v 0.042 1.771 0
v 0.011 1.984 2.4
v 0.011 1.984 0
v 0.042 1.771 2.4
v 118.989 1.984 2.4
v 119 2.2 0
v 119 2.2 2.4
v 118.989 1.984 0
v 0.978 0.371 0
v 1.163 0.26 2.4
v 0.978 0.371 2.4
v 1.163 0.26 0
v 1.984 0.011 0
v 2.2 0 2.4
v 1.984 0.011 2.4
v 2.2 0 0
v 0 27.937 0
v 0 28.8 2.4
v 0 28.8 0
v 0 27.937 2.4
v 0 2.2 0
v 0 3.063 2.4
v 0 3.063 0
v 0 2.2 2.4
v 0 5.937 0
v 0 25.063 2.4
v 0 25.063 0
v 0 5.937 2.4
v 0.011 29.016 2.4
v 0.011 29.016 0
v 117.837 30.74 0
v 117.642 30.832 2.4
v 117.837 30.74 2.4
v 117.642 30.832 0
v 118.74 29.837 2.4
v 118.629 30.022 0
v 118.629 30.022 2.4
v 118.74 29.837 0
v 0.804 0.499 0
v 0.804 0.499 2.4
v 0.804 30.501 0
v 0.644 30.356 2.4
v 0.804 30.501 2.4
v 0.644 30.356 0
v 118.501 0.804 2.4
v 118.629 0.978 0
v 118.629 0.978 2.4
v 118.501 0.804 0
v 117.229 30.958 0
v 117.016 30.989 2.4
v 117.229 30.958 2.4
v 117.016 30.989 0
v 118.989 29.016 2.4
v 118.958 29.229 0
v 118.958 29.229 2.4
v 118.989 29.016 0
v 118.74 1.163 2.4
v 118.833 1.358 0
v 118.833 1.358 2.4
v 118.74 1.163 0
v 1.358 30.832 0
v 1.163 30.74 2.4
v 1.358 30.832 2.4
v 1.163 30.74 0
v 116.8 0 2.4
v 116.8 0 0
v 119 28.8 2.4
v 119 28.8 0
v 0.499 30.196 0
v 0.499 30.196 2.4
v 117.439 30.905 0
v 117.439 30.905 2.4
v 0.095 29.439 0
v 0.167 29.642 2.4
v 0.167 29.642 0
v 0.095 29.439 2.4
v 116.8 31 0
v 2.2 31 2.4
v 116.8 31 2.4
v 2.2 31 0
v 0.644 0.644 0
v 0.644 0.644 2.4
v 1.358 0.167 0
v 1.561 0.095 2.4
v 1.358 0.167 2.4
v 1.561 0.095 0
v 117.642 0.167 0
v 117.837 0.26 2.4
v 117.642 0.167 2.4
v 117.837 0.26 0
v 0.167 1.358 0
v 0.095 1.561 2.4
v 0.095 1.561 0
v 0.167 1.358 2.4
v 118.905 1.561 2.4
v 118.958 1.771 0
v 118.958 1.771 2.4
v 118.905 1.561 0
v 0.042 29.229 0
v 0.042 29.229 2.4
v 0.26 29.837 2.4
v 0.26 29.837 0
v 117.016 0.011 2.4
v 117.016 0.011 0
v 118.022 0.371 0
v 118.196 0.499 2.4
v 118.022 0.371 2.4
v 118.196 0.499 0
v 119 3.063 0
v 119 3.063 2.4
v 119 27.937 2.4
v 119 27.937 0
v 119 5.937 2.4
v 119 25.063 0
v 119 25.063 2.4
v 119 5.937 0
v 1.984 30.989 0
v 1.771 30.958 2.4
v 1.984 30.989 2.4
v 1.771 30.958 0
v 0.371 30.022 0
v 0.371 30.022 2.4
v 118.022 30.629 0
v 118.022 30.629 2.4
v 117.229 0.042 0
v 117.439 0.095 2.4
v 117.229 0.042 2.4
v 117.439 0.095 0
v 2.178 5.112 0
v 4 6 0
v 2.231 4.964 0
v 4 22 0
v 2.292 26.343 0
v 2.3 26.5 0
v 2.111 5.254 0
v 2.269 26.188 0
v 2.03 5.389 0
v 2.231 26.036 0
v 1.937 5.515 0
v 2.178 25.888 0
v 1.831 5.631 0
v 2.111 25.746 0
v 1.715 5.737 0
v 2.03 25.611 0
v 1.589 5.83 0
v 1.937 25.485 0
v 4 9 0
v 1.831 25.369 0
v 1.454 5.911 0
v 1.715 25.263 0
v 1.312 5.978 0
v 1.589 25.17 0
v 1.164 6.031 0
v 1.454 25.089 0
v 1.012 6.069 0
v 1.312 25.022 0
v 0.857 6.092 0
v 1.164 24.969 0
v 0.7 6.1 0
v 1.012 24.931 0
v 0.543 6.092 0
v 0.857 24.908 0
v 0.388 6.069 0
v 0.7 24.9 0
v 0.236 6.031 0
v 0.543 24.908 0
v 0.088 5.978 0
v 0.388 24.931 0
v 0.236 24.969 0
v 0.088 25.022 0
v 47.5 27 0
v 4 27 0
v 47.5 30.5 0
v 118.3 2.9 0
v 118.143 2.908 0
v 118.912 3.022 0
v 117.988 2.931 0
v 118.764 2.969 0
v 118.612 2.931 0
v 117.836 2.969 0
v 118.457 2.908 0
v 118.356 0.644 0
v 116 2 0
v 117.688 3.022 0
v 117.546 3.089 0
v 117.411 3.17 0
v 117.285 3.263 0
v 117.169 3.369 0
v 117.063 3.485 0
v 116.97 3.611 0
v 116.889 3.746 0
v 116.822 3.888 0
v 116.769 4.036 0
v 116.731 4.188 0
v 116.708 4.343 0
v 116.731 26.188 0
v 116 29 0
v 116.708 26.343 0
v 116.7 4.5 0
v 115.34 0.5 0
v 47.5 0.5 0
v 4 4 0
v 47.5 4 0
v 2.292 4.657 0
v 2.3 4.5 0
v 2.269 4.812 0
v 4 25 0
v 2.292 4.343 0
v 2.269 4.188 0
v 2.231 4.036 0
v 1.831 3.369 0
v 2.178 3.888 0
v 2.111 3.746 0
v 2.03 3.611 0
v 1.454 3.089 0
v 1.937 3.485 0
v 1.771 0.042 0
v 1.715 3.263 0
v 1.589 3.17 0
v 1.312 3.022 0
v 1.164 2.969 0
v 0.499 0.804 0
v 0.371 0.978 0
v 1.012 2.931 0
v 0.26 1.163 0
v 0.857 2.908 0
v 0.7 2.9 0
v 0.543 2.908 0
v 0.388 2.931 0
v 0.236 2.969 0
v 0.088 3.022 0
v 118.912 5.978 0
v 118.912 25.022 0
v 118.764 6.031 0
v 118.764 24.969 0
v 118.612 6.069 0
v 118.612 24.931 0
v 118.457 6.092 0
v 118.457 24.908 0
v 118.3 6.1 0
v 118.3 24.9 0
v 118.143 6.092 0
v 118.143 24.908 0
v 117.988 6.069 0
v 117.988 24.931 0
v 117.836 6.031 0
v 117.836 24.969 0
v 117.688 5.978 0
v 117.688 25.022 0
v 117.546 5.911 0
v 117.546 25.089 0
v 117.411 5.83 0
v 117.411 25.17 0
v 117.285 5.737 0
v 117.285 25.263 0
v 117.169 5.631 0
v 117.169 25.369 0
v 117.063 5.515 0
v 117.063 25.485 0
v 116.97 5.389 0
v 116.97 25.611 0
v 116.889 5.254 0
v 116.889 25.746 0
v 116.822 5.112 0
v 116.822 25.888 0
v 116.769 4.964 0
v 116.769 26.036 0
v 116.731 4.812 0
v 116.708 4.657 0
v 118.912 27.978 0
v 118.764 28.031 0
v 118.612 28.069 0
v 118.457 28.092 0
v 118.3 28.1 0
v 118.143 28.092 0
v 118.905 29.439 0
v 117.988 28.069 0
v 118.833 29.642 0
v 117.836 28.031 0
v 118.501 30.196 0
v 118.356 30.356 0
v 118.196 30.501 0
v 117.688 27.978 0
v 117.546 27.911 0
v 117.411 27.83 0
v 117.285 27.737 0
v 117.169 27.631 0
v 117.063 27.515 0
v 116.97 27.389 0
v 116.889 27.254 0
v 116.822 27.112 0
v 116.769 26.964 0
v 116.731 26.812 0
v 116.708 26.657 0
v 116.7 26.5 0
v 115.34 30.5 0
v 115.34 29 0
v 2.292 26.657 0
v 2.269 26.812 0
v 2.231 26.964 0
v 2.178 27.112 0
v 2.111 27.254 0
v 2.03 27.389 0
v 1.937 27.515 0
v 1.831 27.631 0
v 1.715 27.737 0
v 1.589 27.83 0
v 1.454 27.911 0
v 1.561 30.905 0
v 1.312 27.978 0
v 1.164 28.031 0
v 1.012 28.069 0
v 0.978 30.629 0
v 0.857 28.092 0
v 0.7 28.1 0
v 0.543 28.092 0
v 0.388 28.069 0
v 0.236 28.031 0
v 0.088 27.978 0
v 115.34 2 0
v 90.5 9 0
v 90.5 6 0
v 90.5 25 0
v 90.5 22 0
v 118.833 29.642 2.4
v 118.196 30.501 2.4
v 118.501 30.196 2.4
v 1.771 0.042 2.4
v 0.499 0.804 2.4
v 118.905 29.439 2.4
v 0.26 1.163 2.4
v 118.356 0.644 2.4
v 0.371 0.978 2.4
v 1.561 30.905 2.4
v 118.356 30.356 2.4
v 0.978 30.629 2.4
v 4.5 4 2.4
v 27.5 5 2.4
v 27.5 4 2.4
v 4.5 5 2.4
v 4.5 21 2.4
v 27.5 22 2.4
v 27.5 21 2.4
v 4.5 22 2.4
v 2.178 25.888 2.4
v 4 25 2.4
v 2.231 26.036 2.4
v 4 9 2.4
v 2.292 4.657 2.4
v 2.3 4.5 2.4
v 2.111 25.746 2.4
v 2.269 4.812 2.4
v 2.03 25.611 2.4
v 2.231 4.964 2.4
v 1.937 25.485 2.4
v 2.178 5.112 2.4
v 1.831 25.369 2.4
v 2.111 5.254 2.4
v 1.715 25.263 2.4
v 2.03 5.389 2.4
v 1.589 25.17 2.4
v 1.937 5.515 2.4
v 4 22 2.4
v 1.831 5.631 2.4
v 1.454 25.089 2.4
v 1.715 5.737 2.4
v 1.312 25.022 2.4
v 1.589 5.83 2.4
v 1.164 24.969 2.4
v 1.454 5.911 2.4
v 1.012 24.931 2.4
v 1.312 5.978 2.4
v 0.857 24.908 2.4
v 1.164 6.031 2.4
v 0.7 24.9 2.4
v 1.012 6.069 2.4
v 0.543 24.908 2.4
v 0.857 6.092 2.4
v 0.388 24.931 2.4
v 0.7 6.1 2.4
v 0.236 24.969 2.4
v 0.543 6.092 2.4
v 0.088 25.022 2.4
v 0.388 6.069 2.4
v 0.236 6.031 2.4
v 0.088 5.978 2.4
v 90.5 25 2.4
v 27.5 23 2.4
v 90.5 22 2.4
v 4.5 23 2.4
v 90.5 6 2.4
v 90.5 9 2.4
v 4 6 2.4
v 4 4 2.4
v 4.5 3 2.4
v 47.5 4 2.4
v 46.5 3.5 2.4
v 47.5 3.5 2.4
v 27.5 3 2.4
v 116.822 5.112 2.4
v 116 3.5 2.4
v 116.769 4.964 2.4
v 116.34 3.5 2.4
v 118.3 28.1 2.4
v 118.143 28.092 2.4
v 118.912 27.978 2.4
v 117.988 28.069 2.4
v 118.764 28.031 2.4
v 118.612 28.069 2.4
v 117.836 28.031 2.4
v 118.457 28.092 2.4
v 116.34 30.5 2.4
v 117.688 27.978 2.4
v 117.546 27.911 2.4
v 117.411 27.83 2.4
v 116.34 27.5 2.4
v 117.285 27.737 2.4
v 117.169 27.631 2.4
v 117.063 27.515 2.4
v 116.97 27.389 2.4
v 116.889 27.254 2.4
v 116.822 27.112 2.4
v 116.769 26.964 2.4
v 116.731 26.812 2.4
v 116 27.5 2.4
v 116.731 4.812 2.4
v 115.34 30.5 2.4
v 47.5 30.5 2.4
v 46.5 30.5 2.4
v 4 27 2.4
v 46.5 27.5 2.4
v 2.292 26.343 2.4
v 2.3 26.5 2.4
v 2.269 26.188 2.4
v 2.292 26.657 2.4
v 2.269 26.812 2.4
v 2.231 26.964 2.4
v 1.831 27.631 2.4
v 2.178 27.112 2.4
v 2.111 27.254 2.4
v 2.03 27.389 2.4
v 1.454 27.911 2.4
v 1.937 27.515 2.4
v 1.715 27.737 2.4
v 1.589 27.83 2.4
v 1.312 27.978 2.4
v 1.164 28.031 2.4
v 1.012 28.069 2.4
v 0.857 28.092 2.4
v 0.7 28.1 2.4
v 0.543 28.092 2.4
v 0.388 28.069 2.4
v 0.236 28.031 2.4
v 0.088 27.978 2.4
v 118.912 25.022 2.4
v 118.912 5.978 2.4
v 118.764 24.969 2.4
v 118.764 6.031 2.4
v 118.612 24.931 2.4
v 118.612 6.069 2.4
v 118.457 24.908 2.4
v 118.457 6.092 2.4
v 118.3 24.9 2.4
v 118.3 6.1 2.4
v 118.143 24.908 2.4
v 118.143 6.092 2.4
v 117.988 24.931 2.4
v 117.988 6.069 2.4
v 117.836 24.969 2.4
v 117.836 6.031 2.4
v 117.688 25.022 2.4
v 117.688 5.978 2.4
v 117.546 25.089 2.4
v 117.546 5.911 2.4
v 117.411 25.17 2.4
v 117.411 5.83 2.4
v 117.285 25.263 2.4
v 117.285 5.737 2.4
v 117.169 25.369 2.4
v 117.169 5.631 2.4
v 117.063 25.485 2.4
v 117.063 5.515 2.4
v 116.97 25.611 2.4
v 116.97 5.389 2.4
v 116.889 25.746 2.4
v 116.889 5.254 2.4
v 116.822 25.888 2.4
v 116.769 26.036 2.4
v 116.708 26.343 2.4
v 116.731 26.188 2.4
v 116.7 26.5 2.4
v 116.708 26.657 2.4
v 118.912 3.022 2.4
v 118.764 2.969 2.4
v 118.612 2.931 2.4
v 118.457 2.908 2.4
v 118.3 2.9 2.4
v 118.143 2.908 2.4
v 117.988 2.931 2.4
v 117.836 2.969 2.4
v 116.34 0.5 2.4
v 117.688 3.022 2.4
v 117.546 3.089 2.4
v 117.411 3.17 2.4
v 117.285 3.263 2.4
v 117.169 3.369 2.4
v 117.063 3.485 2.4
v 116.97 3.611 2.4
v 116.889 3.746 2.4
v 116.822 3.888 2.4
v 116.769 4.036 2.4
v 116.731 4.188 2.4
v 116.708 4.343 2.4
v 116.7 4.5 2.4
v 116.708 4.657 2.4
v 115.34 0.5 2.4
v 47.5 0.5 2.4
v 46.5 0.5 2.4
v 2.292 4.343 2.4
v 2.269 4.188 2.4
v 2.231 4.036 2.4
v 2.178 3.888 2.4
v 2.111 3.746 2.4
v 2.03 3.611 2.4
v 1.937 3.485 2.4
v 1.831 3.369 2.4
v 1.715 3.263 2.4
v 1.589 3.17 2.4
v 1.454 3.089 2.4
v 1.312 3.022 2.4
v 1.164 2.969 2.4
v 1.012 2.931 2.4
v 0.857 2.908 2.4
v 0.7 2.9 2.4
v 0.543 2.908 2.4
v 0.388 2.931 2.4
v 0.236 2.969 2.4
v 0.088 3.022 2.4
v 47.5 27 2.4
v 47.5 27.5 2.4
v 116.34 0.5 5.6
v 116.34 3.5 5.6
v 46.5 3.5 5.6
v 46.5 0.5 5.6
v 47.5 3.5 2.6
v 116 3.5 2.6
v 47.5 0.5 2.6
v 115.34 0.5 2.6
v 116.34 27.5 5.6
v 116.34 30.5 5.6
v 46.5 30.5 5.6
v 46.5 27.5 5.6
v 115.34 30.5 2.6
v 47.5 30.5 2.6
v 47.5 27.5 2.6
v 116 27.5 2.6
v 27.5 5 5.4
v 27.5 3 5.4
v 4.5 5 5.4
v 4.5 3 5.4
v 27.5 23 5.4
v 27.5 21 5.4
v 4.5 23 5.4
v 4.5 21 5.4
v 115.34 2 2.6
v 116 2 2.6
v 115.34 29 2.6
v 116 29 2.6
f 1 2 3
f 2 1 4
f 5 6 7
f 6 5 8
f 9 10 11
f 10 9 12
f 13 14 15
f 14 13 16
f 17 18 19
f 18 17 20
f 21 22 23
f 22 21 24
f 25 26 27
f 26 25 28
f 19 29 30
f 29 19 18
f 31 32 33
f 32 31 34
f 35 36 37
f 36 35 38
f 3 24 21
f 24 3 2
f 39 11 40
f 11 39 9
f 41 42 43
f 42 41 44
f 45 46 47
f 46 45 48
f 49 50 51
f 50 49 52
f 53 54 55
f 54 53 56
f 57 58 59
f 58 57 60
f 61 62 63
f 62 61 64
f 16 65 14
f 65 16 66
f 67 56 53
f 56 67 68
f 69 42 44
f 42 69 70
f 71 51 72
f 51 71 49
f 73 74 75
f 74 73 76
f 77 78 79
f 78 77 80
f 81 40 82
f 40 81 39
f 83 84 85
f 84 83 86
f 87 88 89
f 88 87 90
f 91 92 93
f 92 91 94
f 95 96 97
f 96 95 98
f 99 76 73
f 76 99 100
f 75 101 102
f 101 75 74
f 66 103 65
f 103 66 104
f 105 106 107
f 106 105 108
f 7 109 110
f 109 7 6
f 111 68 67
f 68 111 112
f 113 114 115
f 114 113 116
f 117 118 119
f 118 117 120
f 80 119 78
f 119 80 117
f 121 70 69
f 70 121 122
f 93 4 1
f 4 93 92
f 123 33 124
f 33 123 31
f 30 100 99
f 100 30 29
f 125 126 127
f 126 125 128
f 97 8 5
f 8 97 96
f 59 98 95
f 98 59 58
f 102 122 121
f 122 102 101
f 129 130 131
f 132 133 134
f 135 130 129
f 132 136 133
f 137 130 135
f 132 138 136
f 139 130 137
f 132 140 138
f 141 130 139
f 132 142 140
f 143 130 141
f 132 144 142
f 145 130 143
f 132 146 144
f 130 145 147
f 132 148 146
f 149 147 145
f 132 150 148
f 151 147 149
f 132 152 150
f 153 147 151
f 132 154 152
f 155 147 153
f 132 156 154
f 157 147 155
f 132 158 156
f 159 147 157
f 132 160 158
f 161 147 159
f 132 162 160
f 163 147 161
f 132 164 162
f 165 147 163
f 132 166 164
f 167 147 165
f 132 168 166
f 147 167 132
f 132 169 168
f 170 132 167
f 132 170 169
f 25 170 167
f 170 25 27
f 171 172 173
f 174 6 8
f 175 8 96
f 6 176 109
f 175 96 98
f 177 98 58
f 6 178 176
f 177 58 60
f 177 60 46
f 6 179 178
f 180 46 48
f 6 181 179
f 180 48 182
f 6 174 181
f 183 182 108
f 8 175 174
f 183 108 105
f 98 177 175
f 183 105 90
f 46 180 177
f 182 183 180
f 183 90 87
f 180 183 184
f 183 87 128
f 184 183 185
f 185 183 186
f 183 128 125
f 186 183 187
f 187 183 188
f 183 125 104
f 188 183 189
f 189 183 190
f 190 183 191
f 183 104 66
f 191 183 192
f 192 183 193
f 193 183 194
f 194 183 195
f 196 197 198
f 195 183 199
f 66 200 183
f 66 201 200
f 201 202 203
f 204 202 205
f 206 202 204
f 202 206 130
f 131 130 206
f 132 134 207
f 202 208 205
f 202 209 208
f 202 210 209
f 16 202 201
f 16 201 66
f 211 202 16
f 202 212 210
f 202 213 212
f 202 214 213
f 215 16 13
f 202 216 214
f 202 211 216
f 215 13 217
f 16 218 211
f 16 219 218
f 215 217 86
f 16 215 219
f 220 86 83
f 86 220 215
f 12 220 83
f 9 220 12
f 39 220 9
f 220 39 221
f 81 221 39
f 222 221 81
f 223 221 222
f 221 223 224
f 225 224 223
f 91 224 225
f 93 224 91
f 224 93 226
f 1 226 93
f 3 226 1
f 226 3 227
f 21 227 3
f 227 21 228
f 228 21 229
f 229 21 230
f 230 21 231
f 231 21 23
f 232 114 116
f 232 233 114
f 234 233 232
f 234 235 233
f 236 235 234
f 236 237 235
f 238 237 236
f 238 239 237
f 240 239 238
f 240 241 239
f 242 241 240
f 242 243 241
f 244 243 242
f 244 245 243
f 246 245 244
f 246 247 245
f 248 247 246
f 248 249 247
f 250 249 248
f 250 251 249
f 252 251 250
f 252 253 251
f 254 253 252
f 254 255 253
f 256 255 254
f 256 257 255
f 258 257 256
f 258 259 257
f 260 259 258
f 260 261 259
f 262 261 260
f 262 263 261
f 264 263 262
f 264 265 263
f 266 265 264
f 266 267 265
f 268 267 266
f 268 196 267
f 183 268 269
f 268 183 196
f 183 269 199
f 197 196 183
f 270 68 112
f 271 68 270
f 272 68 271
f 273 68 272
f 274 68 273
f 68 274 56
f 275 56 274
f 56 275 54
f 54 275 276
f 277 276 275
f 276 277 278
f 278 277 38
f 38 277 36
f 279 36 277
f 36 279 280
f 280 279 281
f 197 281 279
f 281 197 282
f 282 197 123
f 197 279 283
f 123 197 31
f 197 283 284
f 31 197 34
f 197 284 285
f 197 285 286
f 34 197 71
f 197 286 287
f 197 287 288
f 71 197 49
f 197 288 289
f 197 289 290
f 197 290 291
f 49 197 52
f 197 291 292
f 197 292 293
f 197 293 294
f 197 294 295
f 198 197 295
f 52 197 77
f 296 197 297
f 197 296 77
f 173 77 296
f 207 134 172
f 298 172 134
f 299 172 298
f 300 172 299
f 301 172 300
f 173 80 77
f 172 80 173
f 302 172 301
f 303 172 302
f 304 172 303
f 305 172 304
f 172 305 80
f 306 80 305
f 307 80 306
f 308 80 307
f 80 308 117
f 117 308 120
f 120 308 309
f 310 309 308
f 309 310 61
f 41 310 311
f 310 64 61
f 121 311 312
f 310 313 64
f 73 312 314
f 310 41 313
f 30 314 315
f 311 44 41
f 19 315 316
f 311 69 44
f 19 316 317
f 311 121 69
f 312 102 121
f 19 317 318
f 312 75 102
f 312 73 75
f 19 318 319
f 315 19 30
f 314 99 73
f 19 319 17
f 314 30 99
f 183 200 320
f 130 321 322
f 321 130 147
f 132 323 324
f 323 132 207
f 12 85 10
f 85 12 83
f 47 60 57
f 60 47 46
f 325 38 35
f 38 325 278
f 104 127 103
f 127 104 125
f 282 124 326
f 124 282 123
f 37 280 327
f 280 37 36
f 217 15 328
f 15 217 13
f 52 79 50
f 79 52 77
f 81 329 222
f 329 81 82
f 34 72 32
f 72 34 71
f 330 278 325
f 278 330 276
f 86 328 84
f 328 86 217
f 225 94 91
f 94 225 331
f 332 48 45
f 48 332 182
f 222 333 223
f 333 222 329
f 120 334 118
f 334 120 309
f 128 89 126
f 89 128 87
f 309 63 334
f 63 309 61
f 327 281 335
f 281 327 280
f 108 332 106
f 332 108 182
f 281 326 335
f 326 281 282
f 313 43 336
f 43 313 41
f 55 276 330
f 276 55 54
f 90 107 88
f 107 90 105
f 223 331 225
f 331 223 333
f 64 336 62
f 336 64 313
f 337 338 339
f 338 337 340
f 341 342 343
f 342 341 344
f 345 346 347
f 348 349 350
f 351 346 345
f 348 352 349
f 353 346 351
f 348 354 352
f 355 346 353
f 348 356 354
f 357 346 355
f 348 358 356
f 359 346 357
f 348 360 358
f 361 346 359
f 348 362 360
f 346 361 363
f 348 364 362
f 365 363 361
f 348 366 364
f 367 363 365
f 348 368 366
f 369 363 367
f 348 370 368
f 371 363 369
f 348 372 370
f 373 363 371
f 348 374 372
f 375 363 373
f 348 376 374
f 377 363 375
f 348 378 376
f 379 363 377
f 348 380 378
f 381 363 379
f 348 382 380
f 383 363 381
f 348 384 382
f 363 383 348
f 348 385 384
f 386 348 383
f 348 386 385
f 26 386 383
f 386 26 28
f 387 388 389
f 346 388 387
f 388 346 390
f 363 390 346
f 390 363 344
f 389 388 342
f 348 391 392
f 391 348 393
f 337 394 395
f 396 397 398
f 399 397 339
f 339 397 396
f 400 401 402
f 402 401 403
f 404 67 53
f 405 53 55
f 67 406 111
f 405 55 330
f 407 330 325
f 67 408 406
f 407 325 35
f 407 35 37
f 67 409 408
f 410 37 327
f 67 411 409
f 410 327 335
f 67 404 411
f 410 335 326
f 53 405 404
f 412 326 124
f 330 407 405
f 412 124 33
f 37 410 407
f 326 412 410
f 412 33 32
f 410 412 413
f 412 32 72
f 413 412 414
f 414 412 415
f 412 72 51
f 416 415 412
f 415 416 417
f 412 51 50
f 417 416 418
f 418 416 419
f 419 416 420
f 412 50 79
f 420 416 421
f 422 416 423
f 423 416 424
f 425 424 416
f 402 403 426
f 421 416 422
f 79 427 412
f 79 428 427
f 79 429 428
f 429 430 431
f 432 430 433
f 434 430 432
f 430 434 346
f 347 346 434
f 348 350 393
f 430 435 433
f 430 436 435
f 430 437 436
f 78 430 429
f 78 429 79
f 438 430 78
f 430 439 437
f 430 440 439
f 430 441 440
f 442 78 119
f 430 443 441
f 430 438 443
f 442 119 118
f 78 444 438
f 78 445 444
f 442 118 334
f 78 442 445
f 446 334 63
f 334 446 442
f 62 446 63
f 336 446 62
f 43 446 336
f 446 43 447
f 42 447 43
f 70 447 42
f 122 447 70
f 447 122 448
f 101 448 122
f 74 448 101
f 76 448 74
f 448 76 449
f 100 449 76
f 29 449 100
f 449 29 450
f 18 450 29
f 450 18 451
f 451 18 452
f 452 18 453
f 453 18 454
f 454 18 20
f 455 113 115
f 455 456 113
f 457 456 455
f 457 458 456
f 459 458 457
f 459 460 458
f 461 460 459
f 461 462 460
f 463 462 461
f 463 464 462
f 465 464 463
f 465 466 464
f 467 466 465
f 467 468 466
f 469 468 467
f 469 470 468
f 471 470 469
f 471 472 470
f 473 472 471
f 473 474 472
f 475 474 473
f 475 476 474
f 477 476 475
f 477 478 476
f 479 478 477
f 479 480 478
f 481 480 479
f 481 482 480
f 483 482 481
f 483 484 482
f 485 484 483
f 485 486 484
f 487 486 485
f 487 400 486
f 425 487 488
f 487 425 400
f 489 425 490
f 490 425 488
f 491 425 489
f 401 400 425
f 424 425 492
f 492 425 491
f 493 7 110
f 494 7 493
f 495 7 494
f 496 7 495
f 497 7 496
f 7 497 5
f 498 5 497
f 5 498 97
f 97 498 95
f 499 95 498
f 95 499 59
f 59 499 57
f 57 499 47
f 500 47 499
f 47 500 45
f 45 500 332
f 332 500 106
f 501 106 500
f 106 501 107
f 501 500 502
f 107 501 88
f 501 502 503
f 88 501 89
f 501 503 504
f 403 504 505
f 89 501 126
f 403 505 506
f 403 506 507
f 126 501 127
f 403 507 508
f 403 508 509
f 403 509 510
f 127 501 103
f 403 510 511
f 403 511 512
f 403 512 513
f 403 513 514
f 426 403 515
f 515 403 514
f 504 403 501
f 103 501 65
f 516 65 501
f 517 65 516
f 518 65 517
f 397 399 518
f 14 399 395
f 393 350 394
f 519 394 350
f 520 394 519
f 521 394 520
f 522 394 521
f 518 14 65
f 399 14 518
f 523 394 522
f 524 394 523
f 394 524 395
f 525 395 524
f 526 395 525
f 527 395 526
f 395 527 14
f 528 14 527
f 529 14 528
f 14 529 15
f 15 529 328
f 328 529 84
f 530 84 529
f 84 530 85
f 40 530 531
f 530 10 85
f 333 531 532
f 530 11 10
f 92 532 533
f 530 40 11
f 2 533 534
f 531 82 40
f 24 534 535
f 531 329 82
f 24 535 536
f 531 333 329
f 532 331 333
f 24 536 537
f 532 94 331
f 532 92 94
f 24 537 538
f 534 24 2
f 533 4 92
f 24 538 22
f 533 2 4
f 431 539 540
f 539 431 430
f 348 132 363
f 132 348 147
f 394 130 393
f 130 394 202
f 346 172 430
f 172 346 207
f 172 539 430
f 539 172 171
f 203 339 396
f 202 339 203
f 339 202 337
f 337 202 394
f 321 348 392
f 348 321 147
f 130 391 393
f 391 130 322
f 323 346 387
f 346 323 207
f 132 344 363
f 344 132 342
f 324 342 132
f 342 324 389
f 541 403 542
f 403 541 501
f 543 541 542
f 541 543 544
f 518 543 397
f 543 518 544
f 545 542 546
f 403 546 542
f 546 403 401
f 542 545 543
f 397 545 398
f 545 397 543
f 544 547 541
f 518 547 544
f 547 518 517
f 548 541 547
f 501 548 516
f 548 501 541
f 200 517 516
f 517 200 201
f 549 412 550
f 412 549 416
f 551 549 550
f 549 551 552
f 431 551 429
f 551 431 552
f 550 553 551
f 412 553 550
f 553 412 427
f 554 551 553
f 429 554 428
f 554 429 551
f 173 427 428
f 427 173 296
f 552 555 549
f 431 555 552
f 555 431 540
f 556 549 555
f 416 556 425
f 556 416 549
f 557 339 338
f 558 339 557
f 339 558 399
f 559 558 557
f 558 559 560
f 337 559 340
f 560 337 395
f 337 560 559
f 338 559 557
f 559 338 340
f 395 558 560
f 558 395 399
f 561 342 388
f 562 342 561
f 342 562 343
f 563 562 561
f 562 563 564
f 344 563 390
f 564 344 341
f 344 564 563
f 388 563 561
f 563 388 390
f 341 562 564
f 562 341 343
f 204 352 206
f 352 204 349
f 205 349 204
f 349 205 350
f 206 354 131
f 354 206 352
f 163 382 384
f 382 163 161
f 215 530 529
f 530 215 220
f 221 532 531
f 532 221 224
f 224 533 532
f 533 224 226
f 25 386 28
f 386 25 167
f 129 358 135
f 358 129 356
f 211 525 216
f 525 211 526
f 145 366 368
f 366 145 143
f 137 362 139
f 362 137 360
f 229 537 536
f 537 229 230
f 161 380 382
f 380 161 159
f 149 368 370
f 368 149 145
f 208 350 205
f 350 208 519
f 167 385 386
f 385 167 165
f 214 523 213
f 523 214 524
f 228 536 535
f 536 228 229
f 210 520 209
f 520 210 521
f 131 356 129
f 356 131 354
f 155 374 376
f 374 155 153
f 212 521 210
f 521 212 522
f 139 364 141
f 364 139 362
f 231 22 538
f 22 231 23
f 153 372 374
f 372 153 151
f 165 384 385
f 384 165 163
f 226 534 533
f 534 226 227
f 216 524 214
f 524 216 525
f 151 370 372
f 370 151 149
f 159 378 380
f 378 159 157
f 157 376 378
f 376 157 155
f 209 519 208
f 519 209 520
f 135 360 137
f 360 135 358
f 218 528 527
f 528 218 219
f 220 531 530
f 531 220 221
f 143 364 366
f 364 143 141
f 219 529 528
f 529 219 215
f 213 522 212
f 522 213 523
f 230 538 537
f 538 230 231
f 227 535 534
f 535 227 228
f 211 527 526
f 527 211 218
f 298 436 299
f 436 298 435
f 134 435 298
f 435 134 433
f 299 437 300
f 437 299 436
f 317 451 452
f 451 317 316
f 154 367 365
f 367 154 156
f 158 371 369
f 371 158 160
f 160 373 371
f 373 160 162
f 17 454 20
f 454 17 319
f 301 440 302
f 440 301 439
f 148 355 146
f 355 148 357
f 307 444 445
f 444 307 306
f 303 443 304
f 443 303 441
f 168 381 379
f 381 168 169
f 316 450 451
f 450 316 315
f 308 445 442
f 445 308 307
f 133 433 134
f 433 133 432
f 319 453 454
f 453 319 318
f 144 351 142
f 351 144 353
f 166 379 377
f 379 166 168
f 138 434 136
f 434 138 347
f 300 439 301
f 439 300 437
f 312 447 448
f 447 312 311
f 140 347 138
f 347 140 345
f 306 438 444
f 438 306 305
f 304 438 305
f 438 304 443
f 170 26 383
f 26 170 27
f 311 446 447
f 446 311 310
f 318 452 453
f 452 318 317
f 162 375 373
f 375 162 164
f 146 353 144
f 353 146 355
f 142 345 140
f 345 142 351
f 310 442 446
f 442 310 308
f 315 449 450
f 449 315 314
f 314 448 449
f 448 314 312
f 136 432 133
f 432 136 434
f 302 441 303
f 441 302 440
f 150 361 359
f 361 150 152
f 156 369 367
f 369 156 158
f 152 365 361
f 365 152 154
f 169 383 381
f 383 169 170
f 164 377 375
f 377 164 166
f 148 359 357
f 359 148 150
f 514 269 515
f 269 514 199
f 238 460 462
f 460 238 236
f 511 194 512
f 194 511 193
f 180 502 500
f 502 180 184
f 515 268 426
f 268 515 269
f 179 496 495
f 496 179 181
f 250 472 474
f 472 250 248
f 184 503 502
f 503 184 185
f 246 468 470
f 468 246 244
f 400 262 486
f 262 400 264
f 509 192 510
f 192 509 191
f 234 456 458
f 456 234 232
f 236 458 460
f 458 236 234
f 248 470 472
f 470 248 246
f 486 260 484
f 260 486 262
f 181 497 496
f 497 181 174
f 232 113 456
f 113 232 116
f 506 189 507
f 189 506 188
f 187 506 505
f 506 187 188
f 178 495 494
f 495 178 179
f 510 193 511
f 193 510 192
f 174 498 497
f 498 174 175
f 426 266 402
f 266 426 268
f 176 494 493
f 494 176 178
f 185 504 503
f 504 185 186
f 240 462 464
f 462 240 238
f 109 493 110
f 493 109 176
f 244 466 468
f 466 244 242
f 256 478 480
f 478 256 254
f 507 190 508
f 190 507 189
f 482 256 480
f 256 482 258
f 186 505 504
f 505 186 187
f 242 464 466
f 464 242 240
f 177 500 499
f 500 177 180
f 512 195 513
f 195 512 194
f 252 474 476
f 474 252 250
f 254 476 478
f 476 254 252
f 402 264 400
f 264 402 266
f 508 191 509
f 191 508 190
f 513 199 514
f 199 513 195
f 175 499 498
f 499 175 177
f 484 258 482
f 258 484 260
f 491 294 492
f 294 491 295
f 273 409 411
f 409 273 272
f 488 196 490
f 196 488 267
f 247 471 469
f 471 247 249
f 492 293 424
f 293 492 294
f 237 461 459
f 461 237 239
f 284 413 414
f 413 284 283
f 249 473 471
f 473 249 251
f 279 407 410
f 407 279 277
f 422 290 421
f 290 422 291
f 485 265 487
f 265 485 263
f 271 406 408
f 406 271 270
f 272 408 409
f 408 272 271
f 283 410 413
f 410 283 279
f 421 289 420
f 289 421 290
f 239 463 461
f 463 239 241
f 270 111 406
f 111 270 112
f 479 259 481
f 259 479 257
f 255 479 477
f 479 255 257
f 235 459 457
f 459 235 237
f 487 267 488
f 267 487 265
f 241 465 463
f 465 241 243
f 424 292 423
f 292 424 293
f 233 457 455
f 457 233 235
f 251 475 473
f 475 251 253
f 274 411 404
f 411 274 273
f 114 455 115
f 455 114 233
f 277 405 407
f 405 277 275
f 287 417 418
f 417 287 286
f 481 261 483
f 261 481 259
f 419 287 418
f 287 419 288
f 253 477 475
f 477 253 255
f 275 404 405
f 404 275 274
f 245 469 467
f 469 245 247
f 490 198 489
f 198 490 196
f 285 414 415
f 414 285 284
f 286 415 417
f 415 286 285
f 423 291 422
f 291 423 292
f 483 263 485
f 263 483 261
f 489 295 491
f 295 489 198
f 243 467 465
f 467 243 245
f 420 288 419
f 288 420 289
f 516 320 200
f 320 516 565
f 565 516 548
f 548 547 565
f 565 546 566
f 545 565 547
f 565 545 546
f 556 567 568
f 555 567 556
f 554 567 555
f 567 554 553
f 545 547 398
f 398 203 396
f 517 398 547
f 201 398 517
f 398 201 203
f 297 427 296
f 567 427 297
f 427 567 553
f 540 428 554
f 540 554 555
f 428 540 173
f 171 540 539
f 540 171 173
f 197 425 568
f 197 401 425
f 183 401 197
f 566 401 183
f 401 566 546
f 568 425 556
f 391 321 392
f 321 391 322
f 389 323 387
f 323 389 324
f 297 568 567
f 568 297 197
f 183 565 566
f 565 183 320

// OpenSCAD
include <IceGeiger_FieldCase_v1.5.1_COMPLETE.scad>;
part="service_bridge";
